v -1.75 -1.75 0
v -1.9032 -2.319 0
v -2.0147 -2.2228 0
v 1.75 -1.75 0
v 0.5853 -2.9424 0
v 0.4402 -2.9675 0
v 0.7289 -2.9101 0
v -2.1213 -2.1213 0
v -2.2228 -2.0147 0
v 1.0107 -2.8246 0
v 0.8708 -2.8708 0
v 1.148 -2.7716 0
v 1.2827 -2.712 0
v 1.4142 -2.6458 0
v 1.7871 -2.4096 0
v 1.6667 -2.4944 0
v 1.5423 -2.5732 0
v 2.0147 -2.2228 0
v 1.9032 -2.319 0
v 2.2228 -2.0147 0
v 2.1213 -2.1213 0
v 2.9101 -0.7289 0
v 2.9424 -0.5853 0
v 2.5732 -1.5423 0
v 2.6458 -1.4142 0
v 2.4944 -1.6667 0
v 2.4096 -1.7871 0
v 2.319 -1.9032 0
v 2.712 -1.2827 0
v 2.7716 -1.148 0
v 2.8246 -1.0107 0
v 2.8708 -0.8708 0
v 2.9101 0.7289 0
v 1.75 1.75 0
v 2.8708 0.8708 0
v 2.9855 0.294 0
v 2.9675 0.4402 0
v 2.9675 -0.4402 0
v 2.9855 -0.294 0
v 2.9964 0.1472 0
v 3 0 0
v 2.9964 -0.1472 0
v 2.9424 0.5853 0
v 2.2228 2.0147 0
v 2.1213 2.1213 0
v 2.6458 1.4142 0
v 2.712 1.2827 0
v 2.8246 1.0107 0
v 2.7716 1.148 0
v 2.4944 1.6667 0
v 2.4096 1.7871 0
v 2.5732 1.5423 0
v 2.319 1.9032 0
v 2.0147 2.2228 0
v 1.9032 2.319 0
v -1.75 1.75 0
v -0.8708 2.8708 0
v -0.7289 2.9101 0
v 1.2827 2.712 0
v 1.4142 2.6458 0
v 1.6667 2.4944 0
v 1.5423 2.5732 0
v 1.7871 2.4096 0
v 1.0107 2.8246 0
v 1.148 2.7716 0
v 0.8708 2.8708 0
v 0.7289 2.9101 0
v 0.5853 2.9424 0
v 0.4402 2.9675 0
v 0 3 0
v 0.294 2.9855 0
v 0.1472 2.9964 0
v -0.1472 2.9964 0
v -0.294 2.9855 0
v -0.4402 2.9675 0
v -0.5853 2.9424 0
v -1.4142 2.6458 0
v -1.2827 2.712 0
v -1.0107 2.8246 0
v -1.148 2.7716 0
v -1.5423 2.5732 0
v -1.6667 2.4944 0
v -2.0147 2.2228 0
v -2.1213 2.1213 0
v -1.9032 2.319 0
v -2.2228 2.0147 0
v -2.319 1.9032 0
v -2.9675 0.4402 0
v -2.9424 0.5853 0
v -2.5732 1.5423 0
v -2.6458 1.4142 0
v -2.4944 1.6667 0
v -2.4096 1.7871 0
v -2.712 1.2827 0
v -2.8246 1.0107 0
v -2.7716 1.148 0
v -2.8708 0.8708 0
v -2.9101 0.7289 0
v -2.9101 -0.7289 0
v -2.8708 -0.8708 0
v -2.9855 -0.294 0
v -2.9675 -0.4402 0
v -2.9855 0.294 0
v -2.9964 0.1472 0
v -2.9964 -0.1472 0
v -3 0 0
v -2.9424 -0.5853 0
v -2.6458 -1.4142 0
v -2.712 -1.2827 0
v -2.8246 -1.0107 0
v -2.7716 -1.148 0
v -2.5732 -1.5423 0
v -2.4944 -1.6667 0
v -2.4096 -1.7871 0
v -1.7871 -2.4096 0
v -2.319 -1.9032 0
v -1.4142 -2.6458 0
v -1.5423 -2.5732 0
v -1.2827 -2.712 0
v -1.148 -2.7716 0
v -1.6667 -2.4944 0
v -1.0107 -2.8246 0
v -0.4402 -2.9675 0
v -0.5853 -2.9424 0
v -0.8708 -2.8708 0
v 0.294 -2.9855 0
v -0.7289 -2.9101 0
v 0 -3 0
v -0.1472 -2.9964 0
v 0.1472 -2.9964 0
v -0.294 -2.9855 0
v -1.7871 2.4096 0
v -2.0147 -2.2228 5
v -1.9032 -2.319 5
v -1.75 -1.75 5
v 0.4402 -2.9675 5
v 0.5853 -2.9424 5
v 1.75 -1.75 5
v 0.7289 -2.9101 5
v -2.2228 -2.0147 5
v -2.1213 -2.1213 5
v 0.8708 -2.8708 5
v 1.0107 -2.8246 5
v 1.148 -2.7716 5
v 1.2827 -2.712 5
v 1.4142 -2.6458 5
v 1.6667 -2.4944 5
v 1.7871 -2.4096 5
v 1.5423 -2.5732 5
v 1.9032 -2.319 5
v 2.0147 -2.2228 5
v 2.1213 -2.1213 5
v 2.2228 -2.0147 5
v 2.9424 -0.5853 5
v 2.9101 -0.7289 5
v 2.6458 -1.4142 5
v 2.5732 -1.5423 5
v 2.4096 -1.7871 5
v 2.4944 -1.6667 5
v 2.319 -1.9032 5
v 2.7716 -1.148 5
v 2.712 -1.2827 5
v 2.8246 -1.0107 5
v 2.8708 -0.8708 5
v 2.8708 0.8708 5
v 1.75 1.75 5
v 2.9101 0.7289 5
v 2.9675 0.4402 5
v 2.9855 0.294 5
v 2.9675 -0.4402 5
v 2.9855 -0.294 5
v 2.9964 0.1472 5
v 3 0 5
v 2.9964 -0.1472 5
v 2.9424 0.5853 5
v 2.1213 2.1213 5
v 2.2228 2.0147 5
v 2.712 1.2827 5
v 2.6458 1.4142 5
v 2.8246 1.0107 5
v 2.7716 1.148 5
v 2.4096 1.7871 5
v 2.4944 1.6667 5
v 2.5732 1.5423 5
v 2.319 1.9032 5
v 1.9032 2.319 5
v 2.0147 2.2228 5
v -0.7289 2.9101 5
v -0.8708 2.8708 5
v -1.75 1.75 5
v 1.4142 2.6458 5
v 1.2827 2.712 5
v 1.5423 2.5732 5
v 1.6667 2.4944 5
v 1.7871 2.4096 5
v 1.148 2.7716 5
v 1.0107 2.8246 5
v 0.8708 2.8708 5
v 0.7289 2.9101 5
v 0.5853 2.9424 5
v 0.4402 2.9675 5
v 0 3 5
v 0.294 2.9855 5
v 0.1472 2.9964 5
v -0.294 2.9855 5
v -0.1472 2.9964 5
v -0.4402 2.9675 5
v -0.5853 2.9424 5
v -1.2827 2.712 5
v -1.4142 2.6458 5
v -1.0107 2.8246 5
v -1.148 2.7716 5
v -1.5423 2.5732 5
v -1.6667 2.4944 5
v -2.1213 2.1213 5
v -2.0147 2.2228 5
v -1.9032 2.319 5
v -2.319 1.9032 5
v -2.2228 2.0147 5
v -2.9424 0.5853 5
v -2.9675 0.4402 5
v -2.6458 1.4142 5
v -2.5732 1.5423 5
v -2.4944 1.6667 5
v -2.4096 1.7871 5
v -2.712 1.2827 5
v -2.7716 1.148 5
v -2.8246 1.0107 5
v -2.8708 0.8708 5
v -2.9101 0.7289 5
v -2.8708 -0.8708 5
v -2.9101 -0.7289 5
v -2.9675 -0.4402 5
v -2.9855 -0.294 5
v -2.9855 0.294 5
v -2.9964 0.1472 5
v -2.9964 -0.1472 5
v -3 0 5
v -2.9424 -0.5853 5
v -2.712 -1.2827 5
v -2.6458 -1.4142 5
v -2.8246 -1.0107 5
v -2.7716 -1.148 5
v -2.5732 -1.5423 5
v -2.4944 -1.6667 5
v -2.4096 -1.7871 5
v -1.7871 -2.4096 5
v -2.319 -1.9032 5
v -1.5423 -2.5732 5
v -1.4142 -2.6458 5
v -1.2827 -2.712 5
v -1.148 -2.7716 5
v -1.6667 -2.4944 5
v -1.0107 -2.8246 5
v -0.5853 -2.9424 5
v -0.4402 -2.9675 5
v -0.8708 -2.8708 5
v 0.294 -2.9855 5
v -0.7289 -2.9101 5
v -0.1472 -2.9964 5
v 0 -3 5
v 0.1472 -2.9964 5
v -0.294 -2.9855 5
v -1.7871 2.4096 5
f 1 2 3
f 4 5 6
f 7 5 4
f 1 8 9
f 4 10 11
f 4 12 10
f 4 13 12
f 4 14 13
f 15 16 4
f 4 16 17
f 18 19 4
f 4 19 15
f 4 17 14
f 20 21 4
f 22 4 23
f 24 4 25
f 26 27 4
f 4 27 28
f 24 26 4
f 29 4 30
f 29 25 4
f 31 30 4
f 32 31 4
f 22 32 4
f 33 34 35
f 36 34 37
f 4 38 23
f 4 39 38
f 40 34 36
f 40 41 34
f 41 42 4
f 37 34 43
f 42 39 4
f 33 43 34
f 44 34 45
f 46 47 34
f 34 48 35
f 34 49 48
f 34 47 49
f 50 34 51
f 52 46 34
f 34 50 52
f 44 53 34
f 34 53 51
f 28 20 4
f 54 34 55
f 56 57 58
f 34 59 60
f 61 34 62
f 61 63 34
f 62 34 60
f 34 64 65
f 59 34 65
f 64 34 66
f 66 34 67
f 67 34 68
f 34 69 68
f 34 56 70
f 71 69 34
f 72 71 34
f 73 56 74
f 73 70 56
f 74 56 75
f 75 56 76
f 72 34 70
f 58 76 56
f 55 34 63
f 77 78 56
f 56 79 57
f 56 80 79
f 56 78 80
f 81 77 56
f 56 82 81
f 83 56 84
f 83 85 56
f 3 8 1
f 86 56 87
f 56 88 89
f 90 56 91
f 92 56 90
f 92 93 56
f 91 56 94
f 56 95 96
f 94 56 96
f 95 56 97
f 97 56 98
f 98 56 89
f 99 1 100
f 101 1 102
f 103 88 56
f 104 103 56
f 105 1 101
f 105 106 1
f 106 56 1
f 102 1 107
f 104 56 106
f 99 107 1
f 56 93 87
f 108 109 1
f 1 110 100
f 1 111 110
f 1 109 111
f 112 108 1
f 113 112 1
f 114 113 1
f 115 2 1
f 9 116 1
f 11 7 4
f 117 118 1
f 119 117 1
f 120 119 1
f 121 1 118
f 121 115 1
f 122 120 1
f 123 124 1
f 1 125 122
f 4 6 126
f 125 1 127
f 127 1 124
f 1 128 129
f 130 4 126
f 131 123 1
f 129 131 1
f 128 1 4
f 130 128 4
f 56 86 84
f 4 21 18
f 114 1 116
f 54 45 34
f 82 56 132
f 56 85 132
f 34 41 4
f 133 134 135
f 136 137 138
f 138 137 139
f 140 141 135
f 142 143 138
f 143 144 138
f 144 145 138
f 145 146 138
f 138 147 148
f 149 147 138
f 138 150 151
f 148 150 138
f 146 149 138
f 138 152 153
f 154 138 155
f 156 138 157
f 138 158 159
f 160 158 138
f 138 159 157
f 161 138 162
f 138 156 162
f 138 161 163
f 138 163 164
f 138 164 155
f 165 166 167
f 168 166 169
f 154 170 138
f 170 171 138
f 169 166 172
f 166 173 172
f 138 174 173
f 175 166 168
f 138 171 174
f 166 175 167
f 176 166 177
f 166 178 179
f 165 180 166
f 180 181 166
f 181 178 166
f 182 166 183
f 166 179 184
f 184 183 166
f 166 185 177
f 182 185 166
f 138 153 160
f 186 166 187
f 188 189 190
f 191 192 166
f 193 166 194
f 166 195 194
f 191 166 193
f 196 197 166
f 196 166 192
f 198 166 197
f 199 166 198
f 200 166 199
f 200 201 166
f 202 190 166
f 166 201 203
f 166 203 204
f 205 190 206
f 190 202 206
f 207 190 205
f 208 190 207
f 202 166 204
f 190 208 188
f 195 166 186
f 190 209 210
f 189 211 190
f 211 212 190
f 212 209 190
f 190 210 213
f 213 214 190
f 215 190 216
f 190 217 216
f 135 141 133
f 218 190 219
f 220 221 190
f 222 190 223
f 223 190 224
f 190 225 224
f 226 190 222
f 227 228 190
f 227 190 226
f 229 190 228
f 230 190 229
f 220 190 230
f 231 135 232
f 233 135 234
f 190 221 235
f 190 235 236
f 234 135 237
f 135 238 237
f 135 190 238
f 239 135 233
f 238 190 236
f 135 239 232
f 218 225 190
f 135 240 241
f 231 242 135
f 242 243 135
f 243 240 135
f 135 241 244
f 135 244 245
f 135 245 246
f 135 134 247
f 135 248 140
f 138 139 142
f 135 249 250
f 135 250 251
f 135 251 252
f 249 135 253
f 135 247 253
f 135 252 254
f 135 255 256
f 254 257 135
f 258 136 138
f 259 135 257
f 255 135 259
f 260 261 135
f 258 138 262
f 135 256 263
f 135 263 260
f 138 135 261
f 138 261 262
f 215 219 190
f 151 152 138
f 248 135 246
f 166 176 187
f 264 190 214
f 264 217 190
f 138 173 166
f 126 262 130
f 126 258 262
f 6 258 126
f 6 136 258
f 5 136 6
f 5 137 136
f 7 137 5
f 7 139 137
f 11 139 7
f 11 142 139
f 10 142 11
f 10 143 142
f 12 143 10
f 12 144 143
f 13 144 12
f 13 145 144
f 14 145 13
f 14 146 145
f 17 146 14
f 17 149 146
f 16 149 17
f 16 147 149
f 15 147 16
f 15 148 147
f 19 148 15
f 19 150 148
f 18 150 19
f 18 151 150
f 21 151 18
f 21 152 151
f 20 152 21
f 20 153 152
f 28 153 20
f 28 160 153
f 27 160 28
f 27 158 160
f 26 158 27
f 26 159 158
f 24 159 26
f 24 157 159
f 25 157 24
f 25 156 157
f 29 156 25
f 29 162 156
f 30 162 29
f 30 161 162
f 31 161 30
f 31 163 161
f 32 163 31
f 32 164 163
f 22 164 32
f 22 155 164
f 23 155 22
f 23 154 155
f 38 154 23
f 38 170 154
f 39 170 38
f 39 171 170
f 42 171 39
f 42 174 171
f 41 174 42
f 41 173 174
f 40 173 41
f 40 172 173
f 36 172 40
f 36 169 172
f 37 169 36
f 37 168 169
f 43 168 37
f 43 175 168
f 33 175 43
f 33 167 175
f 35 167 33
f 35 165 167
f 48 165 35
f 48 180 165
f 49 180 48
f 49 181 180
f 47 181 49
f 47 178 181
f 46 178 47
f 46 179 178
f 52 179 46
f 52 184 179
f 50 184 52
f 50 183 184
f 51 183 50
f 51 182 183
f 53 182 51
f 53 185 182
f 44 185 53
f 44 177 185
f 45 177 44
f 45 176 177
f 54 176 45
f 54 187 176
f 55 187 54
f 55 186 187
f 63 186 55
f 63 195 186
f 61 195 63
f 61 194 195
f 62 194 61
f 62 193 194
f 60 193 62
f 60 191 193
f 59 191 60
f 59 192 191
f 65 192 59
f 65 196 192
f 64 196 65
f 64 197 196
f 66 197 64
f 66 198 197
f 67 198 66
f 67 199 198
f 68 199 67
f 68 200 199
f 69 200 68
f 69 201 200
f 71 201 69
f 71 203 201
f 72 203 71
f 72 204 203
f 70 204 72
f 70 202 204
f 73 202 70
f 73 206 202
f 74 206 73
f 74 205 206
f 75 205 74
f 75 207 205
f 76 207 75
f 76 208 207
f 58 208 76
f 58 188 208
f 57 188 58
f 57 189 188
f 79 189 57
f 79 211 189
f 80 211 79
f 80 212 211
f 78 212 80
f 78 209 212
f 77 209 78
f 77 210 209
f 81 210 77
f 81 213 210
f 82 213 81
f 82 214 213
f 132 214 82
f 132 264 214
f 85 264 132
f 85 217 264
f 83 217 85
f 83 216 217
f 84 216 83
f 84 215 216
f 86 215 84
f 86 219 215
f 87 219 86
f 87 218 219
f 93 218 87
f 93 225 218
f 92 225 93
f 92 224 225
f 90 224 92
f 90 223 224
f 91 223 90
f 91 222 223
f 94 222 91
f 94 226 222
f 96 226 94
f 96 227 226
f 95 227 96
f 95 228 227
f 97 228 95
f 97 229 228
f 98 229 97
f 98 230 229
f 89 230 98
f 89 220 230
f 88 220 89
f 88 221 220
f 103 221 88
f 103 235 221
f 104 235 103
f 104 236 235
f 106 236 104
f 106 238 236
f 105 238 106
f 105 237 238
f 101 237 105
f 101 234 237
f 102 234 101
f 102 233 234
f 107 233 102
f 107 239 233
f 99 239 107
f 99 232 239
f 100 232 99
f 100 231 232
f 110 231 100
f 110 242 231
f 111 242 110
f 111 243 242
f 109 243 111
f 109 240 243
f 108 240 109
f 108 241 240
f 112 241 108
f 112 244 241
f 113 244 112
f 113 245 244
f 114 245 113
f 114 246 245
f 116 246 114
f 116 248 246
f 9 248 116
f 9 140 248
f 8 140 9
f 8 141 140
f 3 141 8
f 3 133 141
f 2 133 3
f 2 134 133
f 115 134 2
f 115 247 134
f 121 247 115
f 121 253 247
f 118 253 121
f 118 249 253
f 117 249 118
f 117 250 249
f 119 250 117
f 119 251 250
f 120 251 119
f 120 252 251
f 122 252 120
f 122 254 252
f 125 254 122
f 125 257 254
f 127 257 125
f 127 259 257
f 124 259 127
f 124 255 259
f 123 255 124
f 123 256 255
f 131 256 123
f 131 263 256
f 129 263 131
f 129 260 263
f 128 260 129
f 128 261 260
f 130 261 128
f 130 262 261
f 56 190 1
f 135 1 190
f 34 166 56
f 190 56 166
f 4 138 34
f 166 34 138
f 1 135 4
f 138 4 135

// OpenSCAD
$fn=128;

linear_extrude(5)
    difference() {
        circle(3.0);
        square([3.50, 3.50], center = true);
    }
